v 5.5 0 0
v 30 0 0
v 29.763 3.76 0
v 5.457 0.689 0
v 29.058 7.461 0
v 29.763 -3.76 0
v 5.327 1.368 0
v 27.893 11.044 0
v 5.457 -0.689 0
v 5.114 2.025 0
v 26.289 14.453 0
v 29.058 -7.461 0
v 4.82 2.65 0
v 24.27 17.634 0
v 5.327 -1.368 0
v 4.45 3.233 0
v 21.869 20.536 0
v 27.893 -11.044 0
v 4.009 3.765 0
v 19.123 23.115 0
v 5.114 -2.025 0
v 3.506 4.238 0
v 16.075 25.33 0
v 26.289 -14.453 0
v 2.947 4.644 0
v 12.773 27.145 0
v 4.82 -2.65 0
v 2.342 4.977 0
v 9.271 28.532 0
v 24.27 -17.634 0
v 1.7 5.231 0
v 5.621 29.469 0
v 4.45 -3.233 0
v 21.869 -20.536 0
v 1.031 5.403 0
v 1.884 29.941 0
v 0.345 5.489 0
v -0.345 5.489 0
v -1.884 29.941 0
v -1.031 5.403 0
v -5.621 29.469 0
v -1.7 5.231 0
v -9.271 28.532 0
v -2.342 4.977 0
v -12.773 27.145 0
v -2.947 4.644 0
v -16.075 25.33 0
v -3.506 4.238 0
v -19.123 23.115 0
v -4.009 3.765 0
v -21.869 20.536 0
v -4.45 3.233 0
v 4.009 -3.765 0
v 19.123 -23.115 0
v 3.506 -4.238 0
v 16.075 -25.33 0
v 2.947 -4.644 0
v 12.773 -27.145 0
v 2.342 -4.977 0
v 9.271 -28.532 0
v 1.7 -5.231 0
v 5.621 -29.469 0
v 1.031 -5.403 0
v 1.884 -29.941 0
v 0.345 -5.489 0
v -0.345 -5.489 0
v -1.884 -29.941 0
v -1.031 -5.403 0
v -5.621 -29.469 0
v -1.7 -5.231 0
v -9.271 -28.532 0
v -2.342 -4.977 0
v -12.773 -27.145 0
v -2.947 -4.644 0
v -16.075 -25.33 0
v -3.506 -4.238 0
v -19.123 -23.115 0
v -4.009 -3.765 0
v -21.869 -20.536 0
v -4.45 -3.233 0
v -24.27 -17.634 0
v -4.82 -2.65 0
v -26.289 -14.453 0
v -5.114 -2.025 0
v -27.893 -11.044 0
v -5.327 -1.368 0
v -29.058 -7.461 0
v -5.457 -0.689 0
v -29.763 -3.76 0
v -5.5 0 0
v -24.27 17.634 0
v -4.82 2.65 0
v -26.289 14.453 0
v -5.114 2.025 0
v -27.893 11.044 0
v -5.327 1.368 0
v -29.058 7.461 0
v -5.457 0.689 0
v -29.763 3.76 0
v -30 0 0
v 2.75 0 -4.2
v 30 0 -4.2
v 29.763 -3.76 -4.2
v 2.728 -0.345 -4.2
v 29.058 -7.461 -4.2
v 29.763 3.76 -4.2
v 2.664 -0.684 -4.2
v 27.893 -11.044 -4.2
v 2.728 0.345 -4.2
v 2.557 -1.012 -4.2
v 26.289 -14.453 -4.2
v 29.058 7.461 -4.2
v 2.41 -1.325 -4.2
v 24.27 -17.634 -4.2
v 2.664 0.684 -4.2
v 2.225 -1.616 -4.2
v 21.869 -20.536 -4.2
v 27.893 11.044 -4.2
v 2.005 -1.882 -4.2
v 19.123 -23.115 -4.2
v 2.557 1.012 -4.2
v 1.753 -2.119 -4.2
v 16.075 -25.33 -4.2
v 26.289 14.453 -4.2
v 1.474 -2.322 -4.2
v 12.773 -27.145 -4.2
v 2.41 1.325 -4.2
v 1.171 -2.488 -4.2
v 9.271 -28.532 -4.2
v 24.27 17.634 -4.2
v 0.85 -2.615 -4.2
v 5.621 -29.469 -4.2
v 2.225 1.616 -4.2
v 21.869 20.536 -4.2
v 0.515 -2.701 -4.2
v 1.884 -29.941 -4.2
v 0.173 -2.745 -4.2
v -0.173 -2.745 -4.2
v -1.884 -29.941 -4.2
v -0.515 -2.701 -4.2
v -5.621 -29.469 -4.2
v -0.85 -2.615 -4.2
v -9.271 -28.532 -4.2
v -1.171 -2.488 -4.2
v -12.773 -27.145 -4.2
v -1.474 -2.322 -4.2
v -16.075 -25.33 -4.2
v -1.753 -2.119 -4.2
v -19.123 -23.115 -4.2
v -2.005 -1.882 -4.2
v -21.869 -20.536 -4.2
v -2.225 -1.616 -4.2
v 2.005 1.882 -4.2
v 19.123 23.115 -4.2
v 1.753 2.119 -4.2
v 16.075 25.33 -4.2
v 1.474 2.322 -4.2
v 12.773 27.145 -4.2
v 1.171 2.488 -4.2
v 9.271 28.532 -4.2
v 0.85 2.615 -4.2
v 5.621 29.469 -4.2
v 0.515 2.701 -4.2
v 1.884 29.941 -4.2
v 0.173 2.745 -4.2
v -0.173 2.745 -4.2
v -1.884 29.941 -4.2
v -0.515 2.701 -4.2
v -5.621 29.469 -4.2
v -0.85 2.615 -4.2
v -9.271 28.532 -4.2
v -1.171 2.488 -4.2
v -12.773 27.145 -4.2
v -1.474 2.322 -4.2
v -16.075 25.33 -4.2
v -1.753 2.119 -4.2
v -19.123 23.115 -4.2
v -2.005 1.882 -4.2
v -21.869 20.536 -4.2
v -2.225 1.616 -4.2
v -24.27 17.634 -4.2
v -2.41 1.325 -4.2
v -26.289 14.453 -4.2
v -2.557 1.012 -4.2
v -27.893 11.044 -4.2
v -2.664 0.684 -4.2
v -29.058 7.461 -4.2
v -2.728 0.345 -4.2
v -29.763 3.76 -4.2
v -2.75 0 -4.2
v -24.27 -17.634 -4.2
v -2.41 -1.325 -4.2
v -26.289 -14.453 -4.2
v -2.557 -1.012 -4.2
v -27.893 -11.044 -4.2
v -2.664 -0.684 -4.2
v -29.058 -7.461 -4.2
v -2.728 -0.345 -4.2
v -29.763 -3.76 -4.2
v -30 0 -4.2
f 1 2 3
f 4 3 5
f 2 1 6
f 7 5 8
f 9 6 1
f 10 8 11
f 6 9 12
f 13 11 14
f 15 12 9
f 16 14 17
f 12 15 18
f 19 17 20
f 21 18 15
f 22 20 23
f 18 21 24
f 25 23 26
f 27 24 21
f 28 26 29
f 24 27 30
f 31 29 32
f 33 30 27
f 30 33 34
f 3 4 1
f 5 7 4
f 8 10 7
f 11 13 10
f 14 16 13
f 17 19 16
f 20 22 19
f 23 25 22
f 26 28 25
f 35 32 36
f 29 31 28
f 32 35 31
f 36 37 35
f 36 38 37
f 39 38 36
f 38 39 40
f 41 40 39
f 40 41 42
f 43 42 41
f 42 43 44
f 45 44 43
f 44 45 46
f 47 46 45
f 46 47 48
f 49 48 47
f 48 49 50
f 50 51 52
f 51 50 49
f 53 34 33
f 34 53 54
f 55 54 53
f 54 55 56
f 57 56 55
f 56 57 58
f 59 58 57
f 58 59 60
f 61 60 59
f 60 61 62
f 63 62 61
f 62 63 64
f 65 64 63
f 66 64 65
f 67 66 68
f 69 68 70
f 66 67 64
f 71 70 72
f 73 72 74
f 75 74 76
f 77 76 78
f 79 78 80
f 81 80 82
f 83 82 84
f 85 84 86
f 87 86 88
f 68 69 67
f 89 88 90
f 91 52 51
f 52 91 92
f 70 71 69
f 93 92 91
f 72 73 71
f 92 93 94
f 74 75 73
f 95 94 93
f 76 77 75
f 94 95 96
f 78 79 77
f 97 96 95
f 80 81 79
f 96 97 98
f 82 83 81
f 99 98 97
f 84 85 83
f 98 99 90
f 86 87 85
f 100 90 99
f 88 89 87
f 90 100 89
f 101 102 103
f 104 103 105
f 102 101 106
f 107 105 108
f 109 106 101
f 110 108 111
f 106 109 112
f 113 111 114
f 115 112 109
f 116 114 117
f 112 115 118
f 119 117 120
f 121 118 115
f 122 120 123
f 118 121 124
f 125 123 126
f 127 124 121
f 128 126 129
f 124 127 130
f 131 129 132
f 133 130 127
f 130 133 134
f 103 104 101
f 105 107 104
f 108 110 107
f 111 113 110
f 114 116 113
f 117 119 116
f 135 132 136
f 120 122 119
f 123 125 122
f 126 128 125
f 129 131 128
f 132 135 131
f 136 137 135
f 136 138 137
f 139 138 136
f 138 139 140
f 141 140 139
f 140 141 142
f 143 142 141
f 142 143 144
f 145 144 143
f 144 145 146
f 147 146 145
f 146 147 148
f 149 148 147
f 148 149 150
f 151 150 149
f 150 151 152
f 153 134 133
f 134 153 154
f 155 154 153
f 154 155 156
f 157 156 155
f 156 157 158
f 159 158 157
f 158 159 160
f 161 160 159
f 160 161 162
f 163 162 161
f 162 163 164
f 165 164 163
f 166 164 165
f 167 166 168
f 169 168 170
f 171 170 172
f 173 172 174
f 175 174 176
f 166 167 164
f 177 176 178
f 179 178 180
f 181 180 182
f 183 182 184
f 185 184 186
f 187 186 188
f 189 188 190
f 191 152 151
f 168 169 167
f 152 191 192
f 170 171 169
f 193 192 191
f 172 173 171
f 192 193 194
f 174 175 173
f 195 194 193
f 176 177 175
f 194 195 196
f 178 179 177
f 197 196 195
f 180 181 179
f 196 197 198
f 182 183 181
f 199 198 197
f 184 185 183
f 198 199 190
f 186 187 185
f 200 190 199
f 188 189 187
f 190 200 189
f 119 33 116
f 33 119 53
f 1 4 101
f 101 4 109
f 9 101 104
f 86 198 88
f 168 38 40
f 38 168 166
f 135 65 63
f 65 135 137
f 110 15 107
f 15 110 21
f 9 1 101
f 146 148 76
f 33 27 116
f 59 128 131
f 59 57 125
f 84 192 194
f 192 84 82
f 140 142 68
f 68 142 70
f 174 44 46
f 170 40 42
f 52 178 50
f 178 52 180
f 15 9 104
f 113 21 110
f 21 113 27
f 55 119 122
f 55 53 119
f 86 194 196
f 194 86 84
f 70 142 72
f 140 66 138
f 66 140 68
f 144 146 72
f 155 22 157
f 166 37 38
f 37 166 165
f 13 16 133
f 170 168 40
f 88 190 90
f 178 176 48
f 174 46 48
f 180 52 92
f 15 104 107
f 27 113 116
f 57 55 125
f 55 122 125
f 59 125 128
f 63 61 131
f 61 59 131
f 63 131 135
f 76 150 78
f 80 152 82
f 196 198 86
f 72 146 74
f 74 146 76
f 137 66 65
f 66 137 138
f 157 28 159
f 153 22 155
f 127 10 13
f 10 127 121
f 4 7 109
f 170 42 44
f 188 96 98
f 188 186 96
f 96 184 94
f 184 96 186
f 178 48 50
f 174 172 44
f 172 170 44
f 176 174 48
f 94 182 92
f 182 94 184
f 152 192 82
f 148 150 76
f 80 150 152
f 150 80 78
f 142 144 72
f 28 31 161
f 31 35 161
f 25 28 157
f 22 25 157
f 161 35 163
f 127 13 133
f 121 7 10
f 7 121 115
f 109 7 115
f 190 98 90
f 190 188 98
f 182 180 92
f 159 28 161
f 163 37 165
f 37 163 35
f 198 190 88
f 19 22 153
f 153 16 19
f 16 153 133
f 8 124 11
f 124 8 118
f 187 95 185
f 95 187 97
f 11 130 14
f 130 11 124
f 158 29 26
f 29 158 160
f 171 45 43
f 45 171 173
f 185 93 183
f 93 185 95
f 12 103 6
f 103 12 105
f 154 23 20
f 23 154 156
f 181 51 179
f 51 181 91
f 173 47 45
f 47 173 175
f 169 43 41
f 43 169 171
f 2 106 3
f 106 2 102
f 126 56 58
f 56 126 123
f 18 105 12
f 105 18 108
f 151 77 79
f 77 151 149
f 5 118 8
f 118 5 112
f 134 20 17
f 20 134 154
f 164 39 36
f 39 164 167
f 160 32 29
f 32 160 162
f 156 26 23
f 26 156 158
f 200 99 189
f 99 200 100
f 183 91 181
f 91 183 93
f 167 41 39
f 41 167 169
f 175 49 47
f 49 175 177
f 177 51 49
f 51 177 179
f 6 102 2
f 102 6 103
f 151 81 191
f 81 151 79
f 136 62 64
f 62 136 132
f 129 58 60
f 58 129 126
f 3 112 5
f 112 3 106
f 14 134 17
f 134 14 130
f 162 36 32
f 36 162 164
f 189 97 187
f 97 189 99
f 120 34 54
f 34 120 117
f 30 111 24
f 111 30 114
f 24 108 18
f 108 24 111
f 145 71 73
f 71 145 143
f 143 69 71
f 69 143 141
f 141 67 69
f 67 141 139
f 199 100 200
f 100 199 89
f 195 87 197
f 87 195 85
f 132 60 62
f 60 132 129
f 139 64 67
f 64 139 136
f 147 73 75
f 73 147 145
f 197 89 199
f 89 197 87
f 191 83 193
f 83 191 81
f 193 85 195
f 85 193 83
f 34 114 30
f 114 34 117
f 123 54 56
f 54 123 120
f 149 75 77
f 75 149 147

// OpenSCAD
$fn = 50;


difference() {
	union() {
		translate(v = [0, 0, -4.2000000000]) {
			cylinder(h = 4.2000000000, r = 30.0000000000);
		}
	}
	union() {
		translate(v = [0, 0, 0]) {
			rotate(a = [0, 0, 0]) {
				difference() {
					union() {
						#translate(v = [0, 0, -4.2000000000]) {
							cylinder(h = 4.2000000000, r = 2.2500000000);
						}
						#translate(v = [0, 0, -4.2000000000]) {
							cylinder(h = 4.2000000000, r1 = 2.7500000000, r2 = 5.5000000000);
						}
						#translate(v = [0, 0, -4.2000000000]) {
							cylinder(h = 4.2000000000, r = 2.7500000000);
						}
						#translate(v = [0, 0, -4.2000000000]) {
							cylinder(h = 4.2000000000, r = 2.2500000000);
						}
					}
					union();
				}
			}
		}
	}
}
